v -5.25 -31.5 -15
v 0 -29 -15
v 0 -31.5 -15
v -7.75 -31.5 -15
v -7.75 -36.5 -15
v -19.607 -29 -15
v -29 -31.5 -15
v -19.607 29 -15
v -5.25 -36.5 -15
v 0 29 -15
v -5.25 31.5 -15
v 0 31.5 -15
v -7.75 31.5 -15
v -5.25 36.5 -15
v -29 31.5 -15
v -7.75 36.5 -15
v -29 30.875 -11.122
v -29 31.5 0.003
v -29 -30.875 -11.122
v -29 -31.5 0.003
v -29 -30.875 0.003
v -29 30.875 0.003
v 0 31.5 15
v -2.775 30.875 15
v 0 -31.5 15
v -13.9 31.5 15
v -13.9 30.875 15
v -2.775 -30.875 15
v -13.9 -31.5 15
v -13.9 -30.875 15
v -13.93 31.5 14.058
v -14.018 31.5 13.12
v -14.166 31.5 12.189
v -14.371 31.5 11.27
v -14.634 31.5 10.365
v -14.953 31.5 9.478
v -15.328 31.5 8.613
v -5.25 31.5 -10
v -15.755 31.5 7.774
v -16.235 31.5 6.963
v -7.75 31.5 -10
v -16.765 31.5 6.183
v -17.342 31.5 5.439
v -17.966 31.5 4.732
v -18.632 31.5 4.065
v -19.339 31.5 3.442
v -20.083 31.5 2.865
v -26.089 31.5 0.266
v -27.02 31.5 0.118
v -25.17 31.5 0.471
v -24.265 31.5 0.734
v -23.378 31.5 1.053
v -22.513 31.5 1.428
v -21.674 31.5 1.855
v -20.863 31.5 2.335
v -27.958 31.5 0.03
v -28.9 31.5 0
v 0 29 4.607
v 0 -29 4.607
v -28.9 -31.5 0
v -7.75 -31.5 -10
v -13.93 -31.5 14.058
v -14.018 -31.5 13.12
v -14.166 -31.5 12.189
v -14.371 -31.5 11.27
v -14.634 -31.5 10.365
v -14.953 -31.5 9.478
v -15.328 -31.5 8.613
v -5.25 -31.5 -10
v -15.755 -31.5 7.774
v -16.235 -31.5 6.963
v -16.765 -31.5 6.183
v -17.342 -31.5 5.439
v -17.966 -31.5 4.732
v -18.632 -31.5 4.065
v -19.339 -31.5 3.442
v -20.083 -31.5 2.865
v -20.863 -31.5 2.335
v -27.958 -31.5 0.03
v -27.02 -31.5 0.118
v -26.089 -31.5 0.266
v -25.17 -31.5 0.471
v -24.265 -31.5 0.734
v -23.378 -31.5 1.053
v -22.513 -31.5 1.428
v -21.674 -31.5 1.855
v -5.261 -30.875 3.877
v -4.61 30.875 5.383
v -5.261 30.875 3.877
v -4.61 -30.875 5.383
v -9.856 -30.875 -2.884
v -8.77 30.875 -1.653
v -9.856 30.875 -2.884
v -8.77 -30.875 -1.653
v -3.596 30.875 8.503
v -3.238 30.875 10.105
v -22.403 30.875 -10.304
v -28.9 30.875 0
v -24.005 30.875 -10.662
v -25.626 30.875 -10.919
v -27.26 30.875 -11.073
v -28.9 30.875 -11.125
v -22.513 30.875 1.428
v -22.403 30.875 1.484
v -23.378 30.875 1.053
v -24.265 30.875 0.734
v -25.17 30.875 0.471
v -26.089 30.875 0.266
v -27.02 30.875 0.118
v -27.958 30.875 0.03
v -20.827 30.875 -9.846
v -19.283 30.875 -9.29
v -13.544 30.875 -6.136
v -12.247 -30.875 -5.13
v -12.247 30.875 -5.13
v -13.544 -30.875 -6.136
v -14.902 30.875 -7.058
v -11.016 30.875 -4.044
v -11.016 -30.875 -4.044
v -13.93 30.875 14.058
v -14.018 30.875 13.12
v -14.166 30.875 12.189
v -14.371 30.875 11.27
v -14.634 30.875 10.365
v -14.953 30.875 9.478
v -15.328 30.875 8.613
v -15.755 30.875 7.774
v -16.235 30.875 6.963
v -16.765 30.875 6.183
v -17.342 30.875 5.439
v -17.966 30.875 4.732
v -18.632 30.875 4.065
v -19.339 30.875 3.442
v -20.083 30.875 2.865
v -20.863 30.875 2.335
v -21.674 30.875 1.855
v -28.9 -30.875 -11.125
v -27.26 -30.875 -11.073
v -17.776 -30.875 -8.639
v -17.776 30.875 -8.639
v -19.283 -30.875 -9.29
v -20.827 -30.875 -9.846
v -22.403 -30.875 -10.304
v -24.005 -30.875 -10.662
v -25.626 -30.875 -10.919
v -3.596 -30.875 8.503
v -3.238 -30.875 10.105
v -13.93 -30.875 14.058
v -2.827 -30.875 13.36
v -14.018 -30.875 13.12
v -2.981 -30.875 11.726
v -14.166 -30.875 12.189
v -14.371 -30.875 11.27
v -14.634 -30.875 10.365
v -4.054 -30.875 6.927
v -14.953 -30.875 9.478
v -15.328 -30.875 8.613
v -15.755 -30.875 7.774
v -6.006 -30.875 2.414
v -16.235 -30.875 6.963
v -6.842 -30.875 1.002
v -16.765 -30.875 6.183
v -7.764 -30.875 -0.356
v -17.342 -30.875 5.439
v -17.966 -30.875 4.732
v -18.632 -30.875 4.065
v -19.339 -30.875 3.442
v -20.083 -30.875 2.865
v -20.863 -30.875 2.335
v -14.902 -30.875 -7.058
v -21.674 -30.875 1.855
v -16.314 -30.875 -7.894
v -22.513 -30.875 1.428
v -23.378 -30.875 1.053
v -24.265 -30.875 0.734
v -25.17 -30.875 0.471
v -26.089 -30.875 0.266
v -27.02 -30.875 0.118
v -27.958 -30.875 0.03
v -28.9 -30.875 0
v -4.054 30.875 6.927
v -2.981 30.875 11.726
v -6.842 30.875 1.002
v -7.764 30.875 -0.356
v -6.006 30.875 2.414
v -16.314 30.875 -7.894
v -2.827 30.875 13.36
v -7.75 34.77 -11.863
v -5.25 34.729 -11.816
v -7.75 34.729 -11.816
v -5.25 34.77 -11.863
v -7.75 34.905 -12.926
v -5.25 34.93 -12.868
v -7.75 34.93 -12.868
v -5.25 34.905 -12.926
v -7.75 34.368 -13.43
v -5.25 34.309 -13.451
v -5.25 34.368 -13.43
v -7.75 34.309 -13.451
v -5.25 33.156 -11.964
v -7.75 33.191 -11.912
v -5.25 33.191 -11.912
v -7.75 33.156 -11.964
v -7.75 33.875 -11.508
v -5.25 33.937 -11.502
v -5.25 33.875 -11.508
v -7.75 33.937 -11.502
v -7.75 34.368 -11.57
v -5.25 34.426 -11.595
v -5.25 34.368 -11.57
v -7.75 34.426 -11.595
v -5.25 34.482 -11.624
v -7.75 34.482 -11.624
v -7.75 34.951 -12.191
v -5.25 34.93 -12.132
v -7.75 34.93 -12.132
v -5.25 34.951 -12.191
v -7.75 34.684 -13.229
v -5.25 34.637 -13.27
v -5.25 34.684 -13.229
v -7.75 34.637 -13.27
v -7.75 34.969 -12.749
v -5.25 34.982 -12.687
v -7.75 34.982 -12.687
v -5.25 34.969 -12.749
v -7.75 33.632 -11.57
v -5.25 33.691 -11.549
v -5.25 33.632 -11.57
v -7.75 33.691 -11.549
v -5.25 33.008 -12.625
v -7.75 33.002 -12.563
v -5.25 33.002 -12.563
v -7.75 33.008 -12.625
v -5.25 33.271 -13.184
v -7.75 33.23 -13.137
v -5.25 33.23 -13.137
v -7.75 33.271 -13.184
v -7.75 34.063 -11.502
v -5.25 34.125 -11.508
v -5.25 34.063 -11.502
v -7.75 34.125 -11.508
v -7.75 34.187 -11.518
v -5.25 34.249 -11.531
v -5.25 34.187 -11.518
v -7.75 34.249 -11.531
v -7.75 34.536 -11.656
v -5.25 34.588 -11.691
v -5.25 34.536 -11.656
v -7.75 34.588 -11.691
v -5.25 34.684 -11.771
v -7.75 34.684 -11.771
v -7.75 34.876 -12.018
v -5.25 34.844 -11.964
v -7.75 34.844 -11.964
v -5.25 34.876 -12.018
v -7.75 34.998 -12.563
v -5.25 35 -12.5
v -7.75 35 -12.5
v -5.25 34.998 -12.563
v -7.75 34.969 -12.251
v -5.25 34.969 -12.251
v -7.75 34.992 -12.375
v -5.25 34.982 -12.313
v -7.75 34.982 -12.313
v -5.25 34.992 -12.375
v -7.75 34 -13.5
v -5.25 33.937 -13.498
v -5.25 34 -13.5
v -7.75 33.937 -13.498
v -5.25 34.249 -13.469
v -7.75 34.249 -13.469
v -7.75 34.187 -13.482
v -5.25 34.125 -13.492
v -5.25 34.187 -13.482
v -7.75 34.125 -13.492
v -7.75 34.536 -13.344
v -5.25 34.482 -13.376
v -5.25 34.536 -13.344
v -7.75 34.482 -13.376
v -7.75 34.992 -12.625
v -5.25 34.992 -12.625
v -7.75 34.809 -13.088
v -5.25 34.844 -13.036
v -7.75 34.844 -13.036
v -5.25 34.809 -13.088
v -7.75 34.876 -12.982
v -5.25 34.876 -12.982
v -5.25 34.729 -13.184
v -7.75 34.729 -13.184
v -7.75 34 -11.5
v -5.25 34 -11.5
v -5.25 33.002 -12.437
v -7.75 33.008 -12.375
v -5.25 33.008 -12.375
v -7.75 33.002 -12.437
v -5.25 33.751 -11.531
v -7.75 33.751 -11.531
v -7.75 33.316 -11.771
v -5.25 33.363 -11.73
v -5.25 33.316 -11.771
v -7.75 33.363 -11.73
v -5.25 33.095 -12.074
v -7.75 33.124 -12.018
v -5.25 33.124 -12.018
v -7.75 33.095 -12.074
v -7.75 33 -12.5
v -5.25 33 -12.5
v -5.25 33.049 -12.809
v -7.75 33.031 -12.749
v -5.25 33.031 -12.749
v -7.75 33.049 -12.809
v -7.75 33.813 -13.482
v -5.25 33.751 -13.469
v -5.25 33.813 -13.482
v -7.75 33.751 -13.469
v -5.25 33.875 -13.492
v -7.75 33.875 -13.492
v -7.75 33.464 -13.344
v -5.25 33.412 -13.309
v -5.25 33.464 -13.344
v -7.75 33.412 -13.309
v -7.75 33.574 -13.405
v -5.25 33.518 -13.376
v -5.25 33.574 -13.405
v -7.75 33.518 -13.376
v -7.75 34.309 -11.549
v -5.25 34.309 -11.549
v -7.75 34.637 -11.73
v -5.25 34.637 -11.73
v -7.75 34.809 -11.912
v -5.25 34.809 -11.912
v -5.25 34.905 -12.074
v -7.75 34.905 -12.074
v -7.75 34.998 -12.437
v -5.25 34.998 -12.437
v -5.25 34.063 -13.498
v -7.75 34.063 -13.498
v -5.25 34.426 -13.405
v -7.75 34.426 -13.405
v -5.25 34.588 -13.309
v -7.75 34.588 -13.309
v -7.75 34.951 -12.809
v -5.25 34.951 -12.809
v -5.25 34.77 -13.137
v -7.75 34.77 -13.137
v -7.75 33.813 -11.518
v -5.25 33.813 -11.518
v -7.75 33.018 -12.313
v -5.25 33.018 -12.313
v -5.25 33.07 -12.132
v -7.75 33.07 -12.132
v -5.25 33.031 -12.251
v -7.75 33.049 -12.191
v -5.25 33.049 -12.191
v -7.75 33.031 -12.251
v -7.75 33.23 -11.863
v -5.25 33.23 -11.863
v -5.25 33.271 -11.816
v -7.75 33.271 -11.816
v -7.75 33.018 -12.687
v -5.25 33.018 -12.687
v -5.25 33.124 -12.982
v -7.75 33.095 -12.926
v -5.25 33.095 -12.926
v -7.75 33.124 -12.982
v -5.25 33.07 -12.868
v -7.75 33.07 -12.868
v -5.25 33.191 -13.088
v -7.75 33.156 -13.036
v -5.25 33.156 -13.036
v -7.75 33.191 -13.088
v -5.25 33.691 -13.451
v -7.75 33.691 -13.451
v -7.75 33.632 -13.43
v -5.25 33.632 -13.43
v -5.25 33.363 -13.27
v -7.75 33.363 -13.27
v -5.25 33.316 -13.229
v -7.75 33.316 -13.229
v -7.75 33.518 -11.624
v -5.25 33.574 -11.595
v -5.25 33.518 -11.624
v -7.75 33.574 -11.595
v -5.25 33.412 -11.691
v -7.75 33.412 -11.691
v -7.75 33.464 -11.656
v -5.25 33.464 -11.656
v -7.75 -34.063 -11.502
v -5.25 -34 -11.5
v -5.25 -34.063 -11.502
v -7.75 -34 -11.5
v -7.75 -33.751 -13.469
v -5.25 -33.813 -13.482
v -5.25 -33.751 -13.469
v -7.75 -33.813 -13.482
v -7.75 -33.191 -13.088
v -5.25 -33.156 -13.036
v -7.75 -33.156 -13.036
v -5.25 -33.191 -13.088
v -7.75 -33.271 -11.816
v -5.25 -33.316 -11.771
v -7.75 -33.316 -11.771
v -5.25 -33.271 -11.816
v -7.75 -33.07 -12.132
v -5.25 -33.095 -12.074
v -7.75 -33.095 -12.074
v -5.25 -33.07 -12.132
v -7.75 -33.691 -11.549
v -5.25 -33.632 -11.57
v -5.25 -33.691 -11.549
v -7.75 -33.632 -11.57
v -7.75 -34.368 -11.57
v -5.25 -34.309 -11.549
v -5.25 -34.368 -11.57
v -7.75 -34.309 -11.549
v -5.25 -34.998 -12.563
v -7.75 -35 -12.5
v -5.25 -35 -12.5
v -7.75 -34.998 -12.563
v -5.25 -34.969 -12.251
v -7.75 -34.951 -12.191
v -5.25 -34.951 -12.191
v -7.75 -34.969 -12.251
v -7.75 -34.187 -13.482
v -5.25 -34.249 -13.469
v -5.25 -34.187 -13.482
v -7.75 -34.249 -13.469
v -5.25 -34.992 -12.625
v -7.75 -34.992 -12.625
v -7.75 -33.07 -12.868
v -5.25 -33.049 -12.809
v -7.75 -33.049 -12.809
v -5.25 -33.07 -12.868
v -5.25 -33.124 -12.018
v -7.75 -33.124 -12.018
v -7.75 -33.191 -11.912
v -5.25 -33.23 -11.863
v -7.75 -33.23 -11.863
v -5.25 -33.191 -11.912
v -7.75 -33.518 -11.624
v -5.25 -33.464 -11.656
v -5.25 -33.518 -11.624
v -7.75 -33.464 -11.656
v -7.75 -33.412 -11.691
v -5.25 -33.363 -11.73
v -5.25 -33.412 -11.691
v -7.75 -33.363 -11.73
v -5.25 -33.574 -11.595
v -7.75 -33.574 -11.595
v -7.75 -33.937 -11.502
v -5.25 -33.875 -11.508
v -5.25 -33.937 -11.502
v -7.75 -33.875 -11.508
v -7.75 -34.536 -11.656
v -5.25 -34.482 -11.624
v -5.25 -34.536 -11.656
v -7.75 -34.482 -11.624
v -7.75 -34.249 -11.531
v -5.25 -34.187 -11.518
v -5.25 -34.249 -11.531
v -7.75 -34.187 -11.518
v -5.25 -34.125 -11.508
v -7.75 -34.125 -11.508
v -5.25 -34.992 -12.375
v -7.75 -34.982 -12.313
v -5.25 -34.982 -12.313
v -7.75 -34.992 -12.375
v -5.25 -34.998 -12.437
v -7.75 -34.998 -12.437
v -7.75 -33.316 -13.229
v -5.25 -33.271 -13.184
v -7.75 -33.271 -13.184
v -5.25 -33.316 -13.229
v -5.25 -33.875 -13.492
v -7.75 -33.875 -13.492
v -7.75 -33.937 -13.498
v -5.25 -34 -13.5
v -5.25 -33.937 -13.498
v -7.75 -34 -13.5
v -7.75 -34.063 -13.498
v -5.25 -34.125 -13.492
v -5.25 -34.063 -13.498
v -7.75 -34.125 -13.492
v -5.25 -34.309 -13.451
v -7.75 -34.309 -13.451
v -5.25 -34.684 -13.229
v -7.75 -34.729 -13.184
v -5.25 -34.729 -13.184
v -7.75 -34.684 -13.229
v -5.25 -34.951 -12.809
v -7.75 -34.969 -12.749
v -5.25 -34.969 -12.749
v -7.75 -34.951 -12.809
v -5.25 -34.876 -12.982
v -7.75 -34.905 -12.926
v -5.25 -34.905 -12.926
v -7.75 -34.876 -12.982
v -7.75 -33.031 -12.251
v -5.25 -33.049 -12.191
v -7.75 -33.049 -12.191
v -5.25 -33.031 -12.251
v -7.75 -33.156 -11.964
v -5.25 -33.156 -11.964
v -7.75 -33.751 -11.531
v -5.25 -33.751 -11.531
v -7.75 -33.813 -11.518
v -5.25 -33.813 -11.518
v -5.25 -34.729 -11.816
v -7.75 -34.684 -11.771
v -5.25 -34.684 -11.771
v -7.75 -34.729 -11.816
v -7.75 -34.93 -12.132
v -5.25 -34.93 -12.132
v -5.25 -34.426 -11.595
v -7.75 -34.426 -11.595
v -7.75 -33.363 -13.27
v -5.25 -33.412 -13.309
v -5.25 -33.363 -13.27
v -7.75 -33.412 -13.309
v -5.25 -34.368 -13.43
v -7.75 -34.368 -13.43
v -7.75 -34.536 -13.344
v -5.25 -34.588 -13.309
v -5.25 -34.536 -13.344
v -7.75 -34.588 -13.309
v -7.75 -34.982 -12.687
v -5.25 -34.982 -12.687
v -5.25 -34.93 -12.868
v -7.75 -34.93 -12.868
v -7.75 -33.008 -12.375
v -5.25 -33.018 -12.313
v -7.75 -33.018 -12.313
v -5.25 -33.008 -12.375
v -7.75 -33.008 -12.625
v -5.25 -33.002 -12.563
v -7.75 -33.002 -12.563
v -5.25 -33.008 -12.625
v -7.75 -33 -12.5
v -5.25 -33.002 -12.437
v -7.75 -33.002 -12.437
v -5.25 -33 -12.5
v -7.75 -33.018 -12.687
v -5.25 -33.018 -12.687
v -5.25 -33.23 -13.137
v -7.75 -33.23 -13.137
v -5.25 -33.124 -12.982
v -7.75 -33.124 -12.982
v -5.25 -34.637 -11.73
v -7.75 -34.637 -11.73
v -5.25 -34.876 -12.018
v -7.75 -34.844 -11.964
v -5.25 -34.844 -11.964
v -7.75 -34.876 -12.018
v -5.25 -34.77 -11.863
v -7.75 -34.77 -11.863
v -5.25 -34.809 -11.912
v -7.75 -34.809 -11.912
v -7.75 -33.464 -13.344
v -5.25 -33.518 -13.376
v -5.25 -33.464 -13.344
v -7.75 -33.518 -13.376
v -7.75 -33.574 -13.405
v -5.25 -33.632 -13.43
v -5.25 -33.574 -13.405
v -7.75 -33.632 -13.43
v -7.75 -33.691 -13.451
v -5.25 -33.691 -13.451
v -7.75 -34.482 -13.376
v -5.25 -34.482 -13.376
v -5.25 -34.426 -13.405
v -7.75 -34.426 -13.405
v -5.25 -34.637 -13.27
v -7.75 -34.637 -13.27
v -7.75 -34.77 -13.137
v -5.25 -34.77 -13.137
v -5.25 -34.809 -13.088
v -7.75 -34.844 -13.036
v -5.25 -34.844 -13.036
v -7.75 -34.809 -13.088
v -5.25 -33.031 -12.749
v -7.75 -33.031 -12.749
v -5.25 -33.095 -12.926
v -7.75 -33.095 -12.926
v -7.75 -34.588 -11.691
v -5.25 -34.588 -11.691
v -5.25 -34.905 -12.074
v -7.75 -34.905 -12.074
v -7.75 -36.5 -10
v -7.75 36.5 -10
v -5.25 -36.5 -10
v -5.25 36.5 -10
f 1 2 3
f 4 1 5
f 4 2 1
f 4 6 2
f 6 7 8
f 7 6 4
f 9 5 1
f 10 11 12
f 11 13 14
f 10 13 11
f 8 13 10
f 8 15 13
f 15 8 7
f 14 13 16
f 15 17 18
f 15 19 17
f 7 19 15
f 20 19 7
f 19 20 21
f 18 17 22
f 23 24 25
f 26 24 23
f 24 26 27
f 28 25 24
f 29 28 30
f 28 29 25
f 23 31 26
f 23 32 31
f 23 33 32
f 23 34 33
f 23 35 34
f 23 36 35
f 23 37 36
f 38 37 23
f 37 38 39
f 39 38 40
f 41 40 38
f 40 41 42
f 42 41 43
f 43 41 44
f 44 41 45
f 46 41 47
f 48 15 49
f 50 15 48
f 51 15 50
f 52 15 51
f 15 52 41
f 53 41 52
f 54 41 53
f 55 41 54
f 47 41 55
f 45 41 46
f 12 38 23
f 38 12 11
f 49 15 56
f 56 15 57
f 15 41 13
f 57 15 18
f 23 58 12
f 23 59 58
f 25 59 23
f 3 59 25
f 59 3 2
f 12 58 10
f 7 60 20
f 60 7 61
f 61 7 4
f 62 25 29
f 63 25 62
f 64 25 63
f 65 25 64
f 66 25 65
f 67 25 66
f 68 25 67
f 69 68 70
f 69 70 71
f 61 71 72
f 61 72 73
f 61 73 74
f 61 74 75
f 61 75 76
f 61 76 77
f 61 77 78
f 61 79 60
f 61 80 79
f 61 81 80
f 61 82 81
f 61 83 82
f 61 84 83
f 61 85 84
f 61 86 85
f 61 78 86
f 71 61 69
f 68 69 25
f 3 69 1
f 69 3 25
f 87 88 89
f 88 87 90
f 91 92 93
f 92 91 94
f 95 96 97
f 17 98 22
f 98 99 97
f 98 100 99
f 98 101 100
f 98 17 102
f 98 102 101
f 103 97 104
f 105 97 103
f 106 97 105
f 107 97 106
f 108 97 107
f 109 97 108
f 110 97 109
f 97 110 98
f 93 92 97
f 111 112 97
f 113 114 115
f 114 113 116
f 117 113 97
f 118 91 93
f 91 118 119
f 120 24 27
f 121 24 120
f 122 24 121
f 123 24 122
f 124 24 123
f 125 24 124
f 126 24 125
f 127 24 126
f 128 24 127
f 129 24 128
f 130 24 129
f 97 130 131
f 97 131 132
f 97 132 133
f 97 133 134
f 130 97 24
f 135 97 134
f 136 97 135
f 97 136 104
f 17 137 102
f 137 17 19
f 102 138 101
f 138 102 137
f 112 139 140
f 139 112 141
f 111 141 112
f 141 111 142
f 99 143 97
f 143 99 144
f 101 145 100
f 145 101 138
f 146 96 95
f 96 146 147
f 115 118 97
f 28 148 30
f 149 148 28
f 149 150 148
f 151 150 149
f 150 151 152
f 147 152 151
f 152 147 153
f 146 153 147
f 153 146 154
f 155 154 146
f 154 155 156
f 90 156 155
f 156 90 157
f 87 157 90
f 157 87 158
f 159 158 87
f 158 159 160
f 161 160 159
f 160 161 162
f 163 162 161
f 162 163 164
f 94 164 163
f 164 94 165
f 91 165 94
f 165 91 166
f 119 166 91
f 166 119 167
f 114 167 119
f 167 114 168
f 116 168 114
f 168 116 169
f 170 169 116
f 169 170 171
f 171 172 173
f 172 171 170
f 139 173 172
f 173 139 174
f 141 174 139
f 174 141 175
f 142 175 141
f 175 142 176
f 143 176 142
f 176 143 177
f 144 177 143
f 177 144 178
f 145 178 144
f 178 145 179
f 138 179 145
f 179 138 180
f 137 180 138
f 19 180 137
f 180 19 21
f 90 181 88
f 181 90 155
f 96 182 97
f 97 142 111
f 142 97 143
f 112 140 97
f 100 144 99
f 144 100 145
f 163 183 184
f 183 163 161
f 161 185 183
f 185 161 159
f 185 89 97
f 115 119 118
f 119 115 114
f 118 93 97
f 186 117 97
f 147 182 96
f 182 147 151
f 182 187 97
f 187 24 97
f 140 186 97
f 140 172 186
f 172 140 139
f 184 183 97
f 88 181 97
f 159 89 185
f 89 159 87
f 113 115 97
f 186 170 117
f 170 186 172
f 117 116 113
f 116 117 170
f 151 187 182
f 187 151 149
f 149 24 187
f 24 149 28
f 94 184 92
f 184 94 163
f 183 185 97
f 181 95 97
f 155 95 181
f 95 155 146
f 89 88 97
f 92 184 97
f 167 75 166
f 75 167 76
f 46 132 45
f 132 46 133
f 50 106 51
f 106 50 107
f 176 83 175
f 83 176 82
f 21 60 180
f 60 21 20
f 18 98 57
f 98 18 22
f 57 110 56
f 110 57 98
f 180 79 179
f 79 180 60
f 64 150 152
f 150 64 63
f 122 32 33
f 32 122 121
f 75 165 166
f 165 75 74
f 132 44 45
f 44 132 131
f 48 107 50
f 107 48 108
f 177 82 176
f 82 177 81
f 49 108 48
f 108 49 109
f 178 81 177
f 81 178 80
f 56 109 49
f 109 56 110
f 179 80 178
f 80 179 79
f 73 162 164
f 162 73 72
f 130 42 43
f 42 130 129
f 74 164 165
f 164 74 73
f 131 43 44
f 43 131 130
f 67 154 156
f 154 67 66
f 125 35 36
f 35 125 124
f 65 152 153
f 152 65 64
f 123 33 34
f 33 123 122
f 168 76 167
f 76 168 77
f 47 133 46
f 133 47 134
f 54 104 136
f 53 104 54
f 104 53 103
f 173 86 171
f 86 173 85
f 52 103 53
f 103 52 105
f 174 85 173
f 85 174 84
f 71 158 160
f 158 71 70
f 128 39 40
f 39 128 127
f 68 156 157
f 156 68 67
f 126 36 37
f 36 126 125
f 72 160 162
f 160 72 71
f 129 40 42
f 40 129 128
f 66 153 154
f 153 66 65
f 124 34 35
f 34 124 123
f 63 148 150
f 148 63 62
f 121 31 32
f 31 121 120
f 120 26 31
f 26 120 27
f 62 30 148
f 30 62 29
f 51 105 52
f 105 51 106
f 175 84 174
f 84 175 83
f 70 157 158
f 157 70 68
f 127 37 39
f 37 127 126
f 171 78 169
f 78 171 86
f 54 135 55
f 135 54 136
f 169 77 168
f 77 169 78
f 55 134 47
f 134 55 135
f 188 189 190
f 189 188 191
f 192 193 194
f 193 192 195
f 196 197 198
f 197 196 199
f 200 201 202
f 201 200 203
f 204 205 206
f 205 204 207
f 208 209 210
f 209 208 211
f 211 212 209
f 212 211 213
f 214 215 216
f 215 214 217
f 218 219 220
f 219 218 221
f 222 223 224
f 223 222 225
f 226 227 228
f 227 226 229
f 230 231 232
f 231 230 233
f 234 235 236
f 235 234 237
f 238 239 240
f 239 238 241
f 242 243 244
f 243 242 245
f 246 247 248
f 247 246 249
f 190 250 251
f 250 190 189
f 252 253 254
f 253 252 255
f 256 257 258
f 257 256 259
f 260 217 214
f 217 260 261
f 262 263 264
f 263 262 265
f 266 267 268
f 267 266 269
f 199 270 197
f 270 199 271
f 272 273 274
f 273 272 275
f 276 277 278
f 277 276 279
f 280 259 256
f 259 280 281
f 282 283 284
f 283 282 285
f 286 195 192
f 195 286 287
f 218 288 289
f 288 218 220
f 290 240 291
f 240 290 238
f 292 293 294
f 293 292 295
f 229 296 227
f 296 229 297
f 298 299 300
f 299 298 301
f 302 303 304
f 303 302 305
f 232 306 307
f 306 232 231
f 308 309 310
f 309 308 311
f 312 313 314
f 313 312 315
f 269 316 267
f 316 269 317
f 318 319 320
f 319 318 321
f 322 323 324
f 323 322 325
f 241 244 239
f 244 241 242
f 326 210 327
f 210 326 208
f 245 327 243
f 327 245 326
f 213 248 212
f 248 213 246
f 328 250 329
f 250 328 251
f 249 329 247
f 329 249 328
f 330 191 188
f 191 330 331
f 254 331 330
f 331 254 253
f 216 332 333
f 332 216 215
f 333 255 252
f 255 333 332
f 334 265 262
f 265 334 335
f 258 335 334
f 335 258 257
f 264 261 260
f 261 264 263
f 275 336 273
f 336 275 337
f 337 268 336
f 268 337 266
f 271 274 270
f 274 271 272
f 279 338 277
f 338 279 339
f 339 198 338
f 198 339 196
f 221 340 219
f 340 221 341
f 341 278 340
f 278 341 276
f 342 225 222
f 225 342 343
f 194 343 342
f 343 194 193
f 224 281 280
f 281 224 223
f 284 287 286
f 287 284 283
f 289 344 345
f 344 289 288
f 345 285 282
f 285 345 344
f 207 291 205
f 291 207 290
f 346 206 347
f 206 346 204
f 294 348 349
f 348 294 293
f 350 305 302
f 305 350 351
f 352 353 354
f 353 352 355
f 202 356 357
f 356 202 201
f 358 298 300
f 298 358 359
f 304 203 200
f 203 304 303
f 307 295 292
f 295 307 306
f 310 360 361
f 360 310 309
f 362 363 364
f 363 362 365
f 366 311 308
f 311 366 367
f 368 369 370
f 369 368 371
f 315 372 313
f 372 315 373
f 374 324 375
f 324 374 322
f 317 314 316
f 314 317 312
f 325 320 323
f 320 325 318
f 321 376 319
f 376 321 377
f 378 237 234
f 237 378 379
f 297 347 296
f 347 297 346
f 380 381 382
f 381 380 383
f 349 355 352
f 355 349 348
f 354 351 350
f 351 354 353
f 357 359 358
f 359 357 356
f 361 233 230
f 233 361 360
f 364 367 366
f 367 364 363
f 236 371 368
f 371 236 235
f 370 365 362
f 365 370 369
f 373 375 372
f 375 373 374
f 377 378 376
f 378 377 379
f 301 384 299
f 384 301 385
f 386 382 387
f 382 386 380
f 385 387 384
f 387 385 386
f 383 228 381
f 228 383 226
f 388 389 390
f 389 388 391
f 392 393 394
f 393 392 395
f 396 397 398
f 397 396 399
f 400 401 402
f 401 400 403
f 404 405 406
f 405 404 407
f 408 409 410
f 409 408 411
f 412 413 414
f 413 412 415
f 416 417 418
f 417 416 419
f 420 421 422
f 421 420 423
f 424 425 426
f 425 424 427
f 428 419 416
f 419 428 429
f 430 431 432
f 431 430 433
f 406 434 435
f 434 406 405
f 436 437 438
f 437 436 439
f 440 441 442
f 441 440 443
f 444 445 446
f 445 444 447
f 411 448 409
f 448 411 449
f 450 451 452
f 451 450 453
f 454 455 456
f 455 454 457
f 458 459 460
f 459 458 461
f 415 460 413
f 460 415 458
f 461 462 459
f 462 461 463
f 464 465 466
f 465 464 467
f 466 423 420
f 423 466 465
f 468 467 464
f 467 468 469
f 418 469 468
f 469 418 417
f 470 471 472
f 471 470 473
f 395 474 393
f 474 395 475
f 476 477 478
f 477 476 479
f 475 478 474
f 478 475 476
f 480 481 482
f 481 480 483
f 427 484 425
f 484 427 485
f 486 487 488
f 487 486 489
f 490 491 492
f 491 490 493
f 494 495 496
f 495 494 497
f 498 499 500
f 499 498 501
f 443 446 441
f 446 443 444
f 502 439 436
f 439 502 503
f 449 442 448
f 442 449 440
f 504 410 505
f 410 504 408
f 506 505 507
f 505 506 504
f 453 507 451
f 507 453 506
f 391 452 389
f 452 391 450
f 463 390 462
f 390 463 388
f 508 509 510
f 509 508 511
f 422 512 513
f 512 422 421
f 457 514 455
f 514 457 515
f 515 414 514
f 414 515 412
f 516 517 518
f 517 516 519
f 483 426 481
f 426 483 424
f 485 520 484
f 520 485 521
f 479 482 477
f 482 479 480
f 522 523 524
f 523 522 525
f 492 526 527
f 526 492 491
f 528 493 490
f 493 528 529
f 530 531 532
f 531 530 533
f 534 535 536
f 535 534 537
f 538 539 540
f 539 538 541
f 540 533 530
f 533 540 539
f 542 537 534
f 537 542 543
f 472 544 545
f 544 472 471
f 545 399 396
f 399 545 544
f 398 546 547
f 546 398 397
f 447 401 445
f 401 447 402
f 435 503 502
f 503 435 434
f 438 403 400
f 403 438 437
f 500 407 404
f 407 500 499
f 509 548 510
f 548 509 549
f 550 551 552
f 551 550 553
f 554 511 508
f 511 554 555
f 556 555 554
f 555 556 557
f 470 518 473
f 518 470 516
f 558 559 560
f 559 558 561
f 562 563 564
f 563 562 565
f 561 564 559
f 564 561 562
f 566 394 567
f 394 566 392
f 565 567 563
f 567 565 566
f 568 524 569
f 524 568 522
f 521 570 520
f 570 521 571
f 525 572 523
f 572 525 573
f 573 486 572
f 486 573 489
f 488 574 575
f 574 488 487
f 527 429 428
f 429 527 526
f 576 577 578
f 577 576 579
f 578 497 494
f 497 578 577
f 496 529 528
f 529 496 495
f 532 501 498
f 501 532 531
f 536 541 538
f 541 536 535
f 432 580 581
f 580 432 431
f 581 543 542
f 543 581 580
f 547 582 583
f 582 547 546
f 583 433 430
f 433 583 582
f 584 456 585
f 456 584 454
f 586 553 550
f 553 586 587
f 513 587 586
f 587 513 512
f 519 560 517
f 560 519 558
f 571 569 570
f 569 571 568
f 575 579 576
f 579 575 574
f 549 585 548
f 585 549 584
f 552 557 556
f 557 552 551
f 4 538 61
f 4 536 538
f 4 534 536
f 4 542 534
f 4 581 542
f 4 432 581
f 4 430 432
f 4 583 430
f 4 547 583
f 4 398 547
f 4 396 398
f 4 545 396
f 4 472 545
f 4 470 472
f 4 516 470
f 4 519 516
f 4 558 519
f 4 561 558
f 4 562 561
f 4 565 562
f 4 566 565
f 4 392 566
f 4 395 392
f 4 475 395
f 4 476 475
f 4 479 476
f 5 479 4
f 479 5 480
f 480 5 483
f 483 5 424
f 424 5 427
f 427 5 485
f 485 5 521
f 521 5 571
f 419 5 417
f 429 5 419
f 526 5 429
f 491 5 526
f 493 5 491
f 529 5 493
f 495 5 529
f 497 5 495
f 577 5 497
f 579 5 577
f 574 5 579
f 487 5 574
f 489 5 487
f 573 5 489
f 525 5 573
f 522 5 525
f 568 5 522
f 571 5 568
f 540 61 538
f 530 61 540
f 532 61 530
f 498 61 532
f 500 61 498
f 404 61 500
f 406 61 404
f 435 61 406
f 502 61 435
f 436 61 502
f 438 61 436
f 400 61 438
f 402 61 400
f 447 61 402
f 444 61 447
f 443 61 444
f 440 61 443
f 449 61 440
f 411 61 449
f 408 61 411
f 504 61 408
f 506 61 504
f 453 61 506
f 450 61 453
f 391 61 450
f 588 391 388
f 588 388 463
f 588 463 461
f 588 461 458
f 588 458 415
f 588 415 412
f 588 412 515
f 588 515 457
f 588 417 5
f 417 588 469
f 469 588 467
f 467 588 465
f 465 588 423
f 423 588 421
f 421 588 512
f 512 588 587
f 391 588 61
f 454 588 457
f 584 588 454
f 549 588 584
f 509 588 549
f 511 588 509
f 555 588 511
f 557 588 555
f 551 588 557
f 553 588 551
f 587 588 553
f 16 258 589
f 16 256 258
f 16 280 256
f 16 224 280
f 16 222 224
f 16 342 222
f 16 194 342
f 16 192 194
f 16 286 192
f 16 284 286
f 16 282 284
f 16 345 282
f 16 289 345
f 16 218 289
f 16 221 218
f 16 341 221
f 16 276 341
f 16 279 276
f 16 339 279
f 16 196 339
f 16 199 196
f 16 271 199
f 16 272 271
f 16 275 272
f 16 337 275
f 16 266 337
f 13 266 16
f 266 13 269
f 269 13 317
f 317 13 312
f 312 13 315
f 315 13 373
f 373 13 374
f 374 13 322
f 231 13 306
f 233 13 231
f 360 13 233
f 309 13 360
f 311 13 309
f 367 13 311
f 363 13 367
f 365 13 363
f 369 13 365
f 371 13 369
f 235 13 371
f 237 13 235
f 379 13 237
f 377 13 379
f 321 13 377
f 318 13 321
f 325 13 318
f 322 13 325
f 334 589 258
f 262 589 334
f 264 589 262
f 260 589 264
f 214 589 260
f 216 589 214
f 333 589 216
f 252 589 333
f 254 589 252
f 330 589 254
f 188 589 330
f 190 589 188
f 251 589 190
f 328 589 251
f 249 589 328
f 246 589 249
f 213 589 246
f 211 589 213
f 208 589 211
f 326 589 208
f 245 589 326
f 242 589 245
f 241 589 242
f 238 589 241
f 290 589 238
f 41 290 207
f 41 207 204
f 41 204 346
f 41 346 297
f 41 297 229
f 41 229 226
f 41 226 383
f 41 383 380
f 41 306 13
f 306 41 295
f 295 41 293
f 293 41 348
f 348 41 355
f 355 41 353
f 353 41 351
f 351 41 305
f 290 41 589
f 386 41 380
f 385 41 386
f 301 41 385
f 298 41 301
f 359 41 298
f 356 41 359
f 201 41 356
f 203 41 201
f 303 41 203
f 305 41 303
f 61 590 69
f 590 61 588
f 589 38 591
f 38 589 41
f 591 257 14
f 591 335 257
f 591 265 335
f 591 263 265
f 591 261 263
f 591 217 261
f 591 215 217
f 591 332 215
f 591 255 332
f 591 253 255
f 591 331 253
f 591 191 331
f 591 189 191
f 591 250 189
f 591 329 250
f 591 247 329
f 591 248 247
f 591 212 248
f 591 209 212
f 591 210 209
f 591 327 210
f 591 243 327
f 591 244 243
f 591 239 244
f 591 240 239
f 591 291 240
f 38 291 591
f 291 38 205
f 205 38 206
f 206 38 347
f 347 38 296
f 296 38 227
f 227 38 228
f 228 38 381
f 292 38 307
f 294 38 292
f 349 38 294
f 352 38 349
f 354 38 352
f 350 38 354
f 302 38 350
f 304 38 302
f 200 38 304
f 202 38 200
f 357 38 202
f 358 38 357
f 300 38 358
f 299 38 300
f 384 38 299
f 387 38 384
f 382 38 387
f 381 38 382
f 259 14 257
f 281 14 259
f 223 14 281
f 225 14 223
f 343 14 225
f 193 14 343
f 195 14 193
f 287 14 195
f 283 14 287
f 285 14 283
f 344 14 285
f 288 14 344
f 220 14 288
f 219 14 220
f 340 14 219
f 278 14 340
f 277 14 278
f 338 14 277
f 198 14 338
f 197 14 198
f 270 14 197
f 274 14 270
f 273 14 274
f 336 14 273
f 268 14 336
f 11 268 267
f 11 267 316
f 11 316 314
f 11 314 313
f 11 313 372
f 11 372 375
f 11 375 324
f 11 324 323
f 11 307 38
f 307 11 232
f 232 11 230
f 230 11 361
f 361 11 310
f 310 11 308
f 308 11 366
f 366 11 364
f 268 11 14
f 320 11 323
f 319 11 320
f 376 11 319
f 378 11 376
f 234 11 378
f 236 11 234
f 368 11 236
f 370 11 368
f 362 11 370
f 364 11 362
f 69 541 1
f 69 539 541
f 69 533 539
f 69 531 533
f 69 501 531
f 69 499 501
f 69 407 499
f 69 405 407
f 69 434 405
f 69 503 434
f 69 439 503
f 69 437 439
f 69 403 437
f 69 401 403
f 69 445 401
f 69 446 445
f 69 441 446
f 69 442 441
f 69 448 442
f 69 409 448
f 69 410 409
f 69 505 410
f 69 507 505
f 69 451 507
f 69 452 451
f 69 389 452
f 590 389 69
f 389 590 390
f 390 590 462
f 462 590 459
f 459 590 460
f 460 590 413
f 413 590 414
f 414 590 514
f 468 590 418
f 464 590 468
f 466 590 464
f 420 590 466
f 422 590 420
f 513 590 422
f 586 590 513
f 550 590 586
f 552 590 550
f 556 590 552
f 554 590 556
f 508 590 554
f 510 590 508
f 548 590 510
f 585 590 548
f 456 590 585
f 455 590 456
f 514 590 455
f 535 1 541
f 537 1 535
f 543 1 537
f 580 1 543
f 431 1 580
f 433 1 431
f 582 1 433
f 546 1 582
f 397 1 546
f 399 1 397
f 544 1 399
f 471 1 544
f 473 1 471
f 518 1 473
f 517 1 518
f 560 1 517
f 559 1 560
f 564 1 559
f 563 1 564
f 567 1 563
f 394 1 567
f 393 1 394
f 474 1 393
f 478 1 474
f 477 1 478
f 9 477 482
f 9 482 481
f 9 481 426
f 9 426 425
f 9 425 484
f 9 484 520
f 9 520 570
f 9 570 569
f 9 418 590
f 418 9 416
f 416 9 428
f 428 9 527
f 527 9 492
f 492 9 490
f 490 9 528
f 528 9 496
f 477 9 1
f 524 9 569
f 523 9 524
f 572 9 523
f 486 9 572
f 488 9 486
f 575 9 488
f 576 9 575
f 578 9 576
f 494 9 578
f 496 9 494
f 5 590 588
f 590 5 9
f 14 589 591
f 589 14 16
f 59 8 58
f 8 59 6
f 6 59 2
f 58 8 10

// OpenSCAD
// file: lib/settings.scad
// Common settings used by all scad files.

// ALL UNITS IN MILLIMETERS (MM)!!!

$fn = 30;//low-res but fast to render
//$fn = 50;//higher-res but slow to render

pi = 3.1415926535897932384626433832795;

max_footprint = 150; // 15x15 cm

bottom_clearance = 10;
bottom_clearance = 25.4/2+10;
//bottom_clearance = 30;

shell_alpha = 0.215;
//shell_alpha = 1.0;

tolerance = 0.5;

// Flat countersunk M2.5mm x 0.45mm machine screw.
screw_thread_diameter = 2.5;//2.8;//2.75;//2.4?
screw_thread_length = 5;//?
screw_head_diameter = 4.75; // M2.5
//screw_head_diameter = 5.2; // M3
screw_head_height = 1.5;//2;

screw_thread_diameter2 = 2;

unit_thickness = 5;
u = unit_thickness;

shell_thickness = unit_thickness;

// Show flags.
show_platform = 1;
show_head = 1;
show_head_shell = 0;
show_head_electronics_bb = 0;
show_inner_head = 0;
show_battery = 1;
show_foot_cube = 0;
show_torso = 0;
show_motor = 0;
show_motor_wheeled_layout = 1;
show_motor_treads = 0;
show_motor_plates = 1;
show_motor_inner_plates = 1;
show_motor_outer_plates = 1;
show_wheel = 0;//obsolete
show_tracks = 1;//
show_track_wheels = 1;
show_caster = 0;
show_rpi = 1;
show_vertical_plates = 1;//
show_horizontal_plates = 1;//
show_caster_plates = 0;//obsolete?
show_camera = 1;
show_screen = 0;
show_edge_mount = 1;
show_sonar_mount = 1;
show_recharge_mount = 1;
show_conduit = 1;
show_torso_shell = 0;
show_recharge_dock = 0;
show_head_tilt_axis = 0;
show_rpi_camera_axis = 0;
show_laser_axis = 0;

head_vertical_angle_tilt = 0;
//head_vertical_angle_tilt = 30;//max
//head_vertical_angle_tilt = 10;

torso_height = 120+20;

base_plate_diameter = max_footprint-unit_thickness*2;
base_plate_frame = 0;

head_height = 50;
head_offset_z = max_footprint/2;
head_middle_cutout = 85;

rpi_with_four_hats_and_clearance = 76;

motor_gear_teeth = 26;

qrd1114_w = 6.10;
qrd1114_l = 4.39;
qrd1114_h = 4.65;

dock_radius = 10;
dock_gripper_border = 2;
dock_gripper_instep = 0.9;
dock_gripper_cutout_tapper = 50;
dock_receiver_height = 5;

// Patriod Fuel+ 9000 mAh
battery_length = 90;
battery_width = 57;
battery_height = 23;
battery_offset_z = 30;//4;

wheel_diameter = 50;
wheel_offset_x = 65;
wheel_offset_z = wheel_diameter/2;
wheel_axle_diameter = 5;

//caster_diameter = 19.05; // 0.75 inches
caster_diameter = 25.45; // 1 inches
//caster_diameter = 15.875; // 5/8 inches
caster_holder_diameter = 30;//31;
caster_offset_y = base_plate_diameter/2 - caster_holder_diameter/2;

arduino_offset_x = 0;
arduino_offset_y = 0;
arduino_offset_z = 67;
arduino_offset_x2 = 0;
arduino_offset_y2 = -20;
arduino_offset_z2 = torso_height+bottom_clearance;

horizontal_plate_width = unit_thickness*8*2 - unit_thickness*2;
horizontal_plate_depth = unit_thickness*8*2;

vertical_plate_width = horizontal_plate_depth;
vertical_plate_height = unit_thickness*8;
vertical_plate_offset_x = wheel_offset_x-22.5;
vertical_plate_offset_z = vertical_plate_height/2 + unit_thickness/2;

vertical_battery_plate_height = 100 - 15;

caster_plate_width = horizontal_plate_width + unit_thickness*2;
caster_plate_mount_length = unit_thickness*4;
caster_plate_width_minor = caster_holder_diameter;

motor_switch_length = 20;
motor_switch_thickness = 6.5;
motor_switch_height = 11;
motor_switch_height_leads = 23;
motor_switch_on_height =  13.3;
motor_switch_hole_diameter = 2.5;
motor_switch_hole_offset_z = 6.5;//this plus diameter/2 is hole center from switch top
motor_switch_hole_spacing = 7.1;// holes are diameter/2 from this

motor_length = 60;
motor_width = 25;
motor_collar_width = 7;
motor_collar_height = 2.5;
motor_axle_width = 4;
motor_axle_height = 9.5;
motor_offset_x = 10;
//motor_offset_y = motor_width/2+5;
motor_offset_y = unit_thickness*3.5;
motor_offset_z = vertical_plate_height/2 - unit_thickness/2;//4;//30;
motor_mount_holes_dist = 17;
// motor countersink hole
motor_mount_holes_width = 3; // M3
motor_mount_holes_head_height = 2.2;
motor_mount_holes_head_width = 5.8;
motor_bearing_outer_diameter = 10;
motor_bearing_inner_diameter = 5.95;
motor_bearing_thickness = 2.5;

motor_unimount_idler_axle_d = screw_thread_diameter;
//motor_unimount_spacer_depth = 0.1;//too small
motor_unimount_spacer_depth = 0.5;

motor_arm_offset_y = -u*3;
motor_arm_offset_z = u*.5;

motor_plate_width = vertical_plate_width;
motor_plate_height = vertical_plate_height;
motor_plate_thickness = unit_thickness;
motor_plate_offset_z = vertical_plate_offset_z;

motor_plate_middle_thickness = 5;

wheel_hub_offset = u*3;

motor_hole_height_offset = -5;

nylon_spacer_outer_diameter = 6.35;
nylon_spacer_inner_diameter = 3.302;
nylon_spacer_length = 12.7;

track_width = unit_thickness*3;
track_offset_x = -50;
track_offset_z = .1;
//track_wheel_radius = 19;//original
track_wheel_radius = 14;
//track_wheel_hole_radius = (nylon_spacer_outer_diameter+1)/2;
track_wheel_hole_radius = motor_bearing_outer_diameter/2;

track_driver_hole_radius = (motor_axle_width)/2 + 0.1;
track_driver_set_screw_head_d = 4.1;
track_driver_set_screw_shaft_d = 2.4;
//track_wheel_width = 13.5;//original
track_wheel_width = u*2;
track_wheel_width_buffer = u*0.25;
track_offset = 3;        //distance from chassis
track_wheel_offset = track_offset;
//track_length = 250; // see tread_triangle.py, too big
//track_length = 240; // see tread_triangle.py
//track_length = 238; //inc/dec in 10 unit increments so notches match idlers
track_length = 228; //inc/dec in 10 unit increments so notches match idlers
track_radius = track_length/2/pi;
track_wheel_show_fancy = 1;
track_wheel_gap = track_wheel_width + track_wheel_width_buffer*2;
track_axle_bearing_diameter = motor_bearing_inner_diameter - 0.1;
track_tensioner_radius = 12;
track_nut_height = 3.5; //TODO
track_punchout_thickness = 0.25;//should be the same as the minimum layer thickness

head_slew_bearing_outer_diameter = 115;
head_slew_bearing_ring_thickness = 20;
head_slew_bearing_inner_diameter = head_slew_bearing_outer_diameter - head_slew_bearing_ring_thickness;
//head_slew_bearing_hole_diameter = head_slew_bearing_inner_diameter - head_slew_bearing_ring_thickness;
head_slew_bearing_hole_diameter = 12+tolerance; // slip ring https://www.adafruit.com/products/775
//head_slew_bearing_ball_diameter = 5;
head_slew_bearing_ball_diameter = 2.5; //u/2;
head_slew_bearing_height = u;//head_slew_bearing_ball_diameter*2;
head_slew_bearing_gap = 0.5;
head_slew_bearing_slew_gap = 0;
head_slew_bearing_gap_factor = 0.1;

neck_strut_width = u*7;
neck_strut_height = u*18;
neck_strut_spacing = u*8;

show_outer_race = 0;
show_inner_race_a = 1;
show_inner_race_b = 1;
show_balls = 0;
// file: lib/openscad-extra/wedge.scad
// Copyright 2013 Jonathan Hulka
// This program is free software; you can redistribute it and/or modify
// it under the terms of the GNU General Public License as published by
// the Free Software Foundation; either version 2 of the License, or
// (at your option) any later version.
// 
// This program is distributed in the hope that it will be useful,
// but WITHOUT ANY WARRANTY; without even the implied warranty of
// MERCHANTABILITY or FITNESS FOR A PARTICULAR PURPOSE.  See the
// GNU General Public License for more details.
// 
// You should have received a copy of the GNU General Public License
// along with this program; if not, write to the Free Software
// Foundation, Inc., 51 Franklin Street, Fifth Floor, Boston,
// MA 02110-1301, USA.


//Creates a wedge-shaped section of a cylinder
//The result is centered with the open part of the wedge facing in the positive y direction
//h - height
//r - radius
//a - angle
//$fn=100;
module wedge(h, r, a, $fn=50)
{
    th=(a%360)/2;
    difference()
    {
        cylinder(h=h,r=r,center=true, $fn=$fn);
        if(th<90)
        {
            for(n=[-1,1])rotate(-th*n)translate([(r+0.5)*n,0,0])
                cube(size=[r*2+1,r*2+1,h+1],center=true);
        }
        else
        {
            intersection()
            {
                rotate(-th)translate([(r+0.5),(r+0.5),0])
                    cube(size=[r*2+1,r*2+1,h+1],center=true);
                rotate(th)translate([-(r+0.5),(r+0.5),0])
                    cube(size=[r*2+1,r*2+1,h+1],center=true);
            }
        }
    }
}

wedge(h=1, r=1, a=270);
// file: lib/openscad-extra/countersink.scad
/*
Countersink depression for screw heads.
*/
include <../settings.scad>;
use <../openscad-extra/countersink.scad>;

/*
module make_countersink(d1=0, d2=0, h=0, l=0, outer=100, inner=200, bt_extra=0, $fn=25){
    extra = 0.5;
    d1 = d1 ? d1 : screw_thread_diameter;
    d2 = d2 ? d2 : screw_head_diameter;
    h = h ? h : screw_head_height;
    
    union(){
        cylinder(d1=d1, d2=d2, h=h+extra, center=true, $fn=$fn);
        
        if(l)
        cylinder(d=d1, h=l, center=true, $fn=$fn);
    
        // big top
    	translate([0,0,(h+extra)/2])
    	cylinder(d=d2+bt_extra, h=outer, center=false, $fn=$fn);

    	// lower bottom
    	translate([0,0,-(h+extra)/2-inner])
    	cylinder(d=d1, h=inner, center=false, $fn=$fn);
	}
}
*/

module make_countersink_motor(){
    make_countersink(
        d1=motor_mount_holes_width,
        d2=motor_mount_holes_head_width,
        h=motor_mount_holes_head_height);
}

make_countersink();
// file: lib/openscad-extra/torus.scad
use <wedge.scad>;

module torus(r1=1, r2=2, angle=360, endstops=0, $fn=50){
    if(angle < 360){
        intersection(){
            rotate_extrude(convexity=10, $fn=$fn)
            translate([r2, 0, 0])
            circle(r=r1, $fn=$fn);
            
            color("blue")
            wedge(h=r1*3, r=r2*2, a=angle);
        }
    }else{
        rotate_extrude(convexity=10, $fn=$fn)
        translate([r2, 0, 0])
        circle(r=r1, $fn=$fn);
    }
    
    if(endstops && angle < 360){
        rotate([0,0,angle/2])
        translate([0,r2,0])
        sphere(r=r1);
        
        rotate([0,0,-angle/2])
        translate([0,r2,0])
        sphere(r=r1);
    }
}

module rounded_cylinder(d=1, h=1, r=0.1, center=true, $fn=100){
    translate([0,0,(center==true)?-h/2:0]){
        union(){
            // bottom edge
            translate([0,0,r])torus(r1=r, r2=(d-r*2)/2, $fn=$fn);
            // top edge
            translate([0,0,h-r])torus(r1=r, r2=(d-r*2)/2, $fn=$fn);
            // main cylinder outer
            translate([0,0,r])cylinder(d=d, h=h-r*2, center=false, $fn=$fn);
            // main cylinder inner
            translate([0,0,0])cylinder(d=d-r*2, h=h, center=false, $fn=$fn);
        }
    }
}

rotate([0,0,180])
torus(r1=0.5, angle=90, endstops=1);

torus(r1=0.5, r2=4);

translate([-1,0,0])
rounded_cylinder(r=0.25, center=true);

translate([1,0,0])
cylinder(d=1, h=1, $fn=50);
// file: lib/openscad-extra/tube.scad
$fn = 100;

module tube(d, t, h, center=false){
    difference(){
        cylinder(d=d, h=h, center=center);
        translate([0,0,-1])
        cylinder(d=d-t*2, h=h*2+2, center=center);
    }
}

module tube_cone(d1, d2, t, h, center=false){
    difference(){
        cylinder(d1=d1, d2=d2, h=h, center=center);
        cylinder(d1=d1-t*2, d2=d2-t*2, h=h+0.01, center=center);
    }
}

color("blue")
translate([-1+.1/2,0,0])
cylinder(d=0.1, h=6, center=false);

tube(d=2, t=0.1, h=5);

translate([5,0,0])
tube(d=2, t=0.1, h=5, center=true);

translate([-5,0,0])
tube_cone(d1=3, d2=1, t=0.1, h=5, center=true);
// main file
use <model.scad>;

//translate([0,26.5,50])
rotate([0,-90,0])
water_trough(show_axle=0);
